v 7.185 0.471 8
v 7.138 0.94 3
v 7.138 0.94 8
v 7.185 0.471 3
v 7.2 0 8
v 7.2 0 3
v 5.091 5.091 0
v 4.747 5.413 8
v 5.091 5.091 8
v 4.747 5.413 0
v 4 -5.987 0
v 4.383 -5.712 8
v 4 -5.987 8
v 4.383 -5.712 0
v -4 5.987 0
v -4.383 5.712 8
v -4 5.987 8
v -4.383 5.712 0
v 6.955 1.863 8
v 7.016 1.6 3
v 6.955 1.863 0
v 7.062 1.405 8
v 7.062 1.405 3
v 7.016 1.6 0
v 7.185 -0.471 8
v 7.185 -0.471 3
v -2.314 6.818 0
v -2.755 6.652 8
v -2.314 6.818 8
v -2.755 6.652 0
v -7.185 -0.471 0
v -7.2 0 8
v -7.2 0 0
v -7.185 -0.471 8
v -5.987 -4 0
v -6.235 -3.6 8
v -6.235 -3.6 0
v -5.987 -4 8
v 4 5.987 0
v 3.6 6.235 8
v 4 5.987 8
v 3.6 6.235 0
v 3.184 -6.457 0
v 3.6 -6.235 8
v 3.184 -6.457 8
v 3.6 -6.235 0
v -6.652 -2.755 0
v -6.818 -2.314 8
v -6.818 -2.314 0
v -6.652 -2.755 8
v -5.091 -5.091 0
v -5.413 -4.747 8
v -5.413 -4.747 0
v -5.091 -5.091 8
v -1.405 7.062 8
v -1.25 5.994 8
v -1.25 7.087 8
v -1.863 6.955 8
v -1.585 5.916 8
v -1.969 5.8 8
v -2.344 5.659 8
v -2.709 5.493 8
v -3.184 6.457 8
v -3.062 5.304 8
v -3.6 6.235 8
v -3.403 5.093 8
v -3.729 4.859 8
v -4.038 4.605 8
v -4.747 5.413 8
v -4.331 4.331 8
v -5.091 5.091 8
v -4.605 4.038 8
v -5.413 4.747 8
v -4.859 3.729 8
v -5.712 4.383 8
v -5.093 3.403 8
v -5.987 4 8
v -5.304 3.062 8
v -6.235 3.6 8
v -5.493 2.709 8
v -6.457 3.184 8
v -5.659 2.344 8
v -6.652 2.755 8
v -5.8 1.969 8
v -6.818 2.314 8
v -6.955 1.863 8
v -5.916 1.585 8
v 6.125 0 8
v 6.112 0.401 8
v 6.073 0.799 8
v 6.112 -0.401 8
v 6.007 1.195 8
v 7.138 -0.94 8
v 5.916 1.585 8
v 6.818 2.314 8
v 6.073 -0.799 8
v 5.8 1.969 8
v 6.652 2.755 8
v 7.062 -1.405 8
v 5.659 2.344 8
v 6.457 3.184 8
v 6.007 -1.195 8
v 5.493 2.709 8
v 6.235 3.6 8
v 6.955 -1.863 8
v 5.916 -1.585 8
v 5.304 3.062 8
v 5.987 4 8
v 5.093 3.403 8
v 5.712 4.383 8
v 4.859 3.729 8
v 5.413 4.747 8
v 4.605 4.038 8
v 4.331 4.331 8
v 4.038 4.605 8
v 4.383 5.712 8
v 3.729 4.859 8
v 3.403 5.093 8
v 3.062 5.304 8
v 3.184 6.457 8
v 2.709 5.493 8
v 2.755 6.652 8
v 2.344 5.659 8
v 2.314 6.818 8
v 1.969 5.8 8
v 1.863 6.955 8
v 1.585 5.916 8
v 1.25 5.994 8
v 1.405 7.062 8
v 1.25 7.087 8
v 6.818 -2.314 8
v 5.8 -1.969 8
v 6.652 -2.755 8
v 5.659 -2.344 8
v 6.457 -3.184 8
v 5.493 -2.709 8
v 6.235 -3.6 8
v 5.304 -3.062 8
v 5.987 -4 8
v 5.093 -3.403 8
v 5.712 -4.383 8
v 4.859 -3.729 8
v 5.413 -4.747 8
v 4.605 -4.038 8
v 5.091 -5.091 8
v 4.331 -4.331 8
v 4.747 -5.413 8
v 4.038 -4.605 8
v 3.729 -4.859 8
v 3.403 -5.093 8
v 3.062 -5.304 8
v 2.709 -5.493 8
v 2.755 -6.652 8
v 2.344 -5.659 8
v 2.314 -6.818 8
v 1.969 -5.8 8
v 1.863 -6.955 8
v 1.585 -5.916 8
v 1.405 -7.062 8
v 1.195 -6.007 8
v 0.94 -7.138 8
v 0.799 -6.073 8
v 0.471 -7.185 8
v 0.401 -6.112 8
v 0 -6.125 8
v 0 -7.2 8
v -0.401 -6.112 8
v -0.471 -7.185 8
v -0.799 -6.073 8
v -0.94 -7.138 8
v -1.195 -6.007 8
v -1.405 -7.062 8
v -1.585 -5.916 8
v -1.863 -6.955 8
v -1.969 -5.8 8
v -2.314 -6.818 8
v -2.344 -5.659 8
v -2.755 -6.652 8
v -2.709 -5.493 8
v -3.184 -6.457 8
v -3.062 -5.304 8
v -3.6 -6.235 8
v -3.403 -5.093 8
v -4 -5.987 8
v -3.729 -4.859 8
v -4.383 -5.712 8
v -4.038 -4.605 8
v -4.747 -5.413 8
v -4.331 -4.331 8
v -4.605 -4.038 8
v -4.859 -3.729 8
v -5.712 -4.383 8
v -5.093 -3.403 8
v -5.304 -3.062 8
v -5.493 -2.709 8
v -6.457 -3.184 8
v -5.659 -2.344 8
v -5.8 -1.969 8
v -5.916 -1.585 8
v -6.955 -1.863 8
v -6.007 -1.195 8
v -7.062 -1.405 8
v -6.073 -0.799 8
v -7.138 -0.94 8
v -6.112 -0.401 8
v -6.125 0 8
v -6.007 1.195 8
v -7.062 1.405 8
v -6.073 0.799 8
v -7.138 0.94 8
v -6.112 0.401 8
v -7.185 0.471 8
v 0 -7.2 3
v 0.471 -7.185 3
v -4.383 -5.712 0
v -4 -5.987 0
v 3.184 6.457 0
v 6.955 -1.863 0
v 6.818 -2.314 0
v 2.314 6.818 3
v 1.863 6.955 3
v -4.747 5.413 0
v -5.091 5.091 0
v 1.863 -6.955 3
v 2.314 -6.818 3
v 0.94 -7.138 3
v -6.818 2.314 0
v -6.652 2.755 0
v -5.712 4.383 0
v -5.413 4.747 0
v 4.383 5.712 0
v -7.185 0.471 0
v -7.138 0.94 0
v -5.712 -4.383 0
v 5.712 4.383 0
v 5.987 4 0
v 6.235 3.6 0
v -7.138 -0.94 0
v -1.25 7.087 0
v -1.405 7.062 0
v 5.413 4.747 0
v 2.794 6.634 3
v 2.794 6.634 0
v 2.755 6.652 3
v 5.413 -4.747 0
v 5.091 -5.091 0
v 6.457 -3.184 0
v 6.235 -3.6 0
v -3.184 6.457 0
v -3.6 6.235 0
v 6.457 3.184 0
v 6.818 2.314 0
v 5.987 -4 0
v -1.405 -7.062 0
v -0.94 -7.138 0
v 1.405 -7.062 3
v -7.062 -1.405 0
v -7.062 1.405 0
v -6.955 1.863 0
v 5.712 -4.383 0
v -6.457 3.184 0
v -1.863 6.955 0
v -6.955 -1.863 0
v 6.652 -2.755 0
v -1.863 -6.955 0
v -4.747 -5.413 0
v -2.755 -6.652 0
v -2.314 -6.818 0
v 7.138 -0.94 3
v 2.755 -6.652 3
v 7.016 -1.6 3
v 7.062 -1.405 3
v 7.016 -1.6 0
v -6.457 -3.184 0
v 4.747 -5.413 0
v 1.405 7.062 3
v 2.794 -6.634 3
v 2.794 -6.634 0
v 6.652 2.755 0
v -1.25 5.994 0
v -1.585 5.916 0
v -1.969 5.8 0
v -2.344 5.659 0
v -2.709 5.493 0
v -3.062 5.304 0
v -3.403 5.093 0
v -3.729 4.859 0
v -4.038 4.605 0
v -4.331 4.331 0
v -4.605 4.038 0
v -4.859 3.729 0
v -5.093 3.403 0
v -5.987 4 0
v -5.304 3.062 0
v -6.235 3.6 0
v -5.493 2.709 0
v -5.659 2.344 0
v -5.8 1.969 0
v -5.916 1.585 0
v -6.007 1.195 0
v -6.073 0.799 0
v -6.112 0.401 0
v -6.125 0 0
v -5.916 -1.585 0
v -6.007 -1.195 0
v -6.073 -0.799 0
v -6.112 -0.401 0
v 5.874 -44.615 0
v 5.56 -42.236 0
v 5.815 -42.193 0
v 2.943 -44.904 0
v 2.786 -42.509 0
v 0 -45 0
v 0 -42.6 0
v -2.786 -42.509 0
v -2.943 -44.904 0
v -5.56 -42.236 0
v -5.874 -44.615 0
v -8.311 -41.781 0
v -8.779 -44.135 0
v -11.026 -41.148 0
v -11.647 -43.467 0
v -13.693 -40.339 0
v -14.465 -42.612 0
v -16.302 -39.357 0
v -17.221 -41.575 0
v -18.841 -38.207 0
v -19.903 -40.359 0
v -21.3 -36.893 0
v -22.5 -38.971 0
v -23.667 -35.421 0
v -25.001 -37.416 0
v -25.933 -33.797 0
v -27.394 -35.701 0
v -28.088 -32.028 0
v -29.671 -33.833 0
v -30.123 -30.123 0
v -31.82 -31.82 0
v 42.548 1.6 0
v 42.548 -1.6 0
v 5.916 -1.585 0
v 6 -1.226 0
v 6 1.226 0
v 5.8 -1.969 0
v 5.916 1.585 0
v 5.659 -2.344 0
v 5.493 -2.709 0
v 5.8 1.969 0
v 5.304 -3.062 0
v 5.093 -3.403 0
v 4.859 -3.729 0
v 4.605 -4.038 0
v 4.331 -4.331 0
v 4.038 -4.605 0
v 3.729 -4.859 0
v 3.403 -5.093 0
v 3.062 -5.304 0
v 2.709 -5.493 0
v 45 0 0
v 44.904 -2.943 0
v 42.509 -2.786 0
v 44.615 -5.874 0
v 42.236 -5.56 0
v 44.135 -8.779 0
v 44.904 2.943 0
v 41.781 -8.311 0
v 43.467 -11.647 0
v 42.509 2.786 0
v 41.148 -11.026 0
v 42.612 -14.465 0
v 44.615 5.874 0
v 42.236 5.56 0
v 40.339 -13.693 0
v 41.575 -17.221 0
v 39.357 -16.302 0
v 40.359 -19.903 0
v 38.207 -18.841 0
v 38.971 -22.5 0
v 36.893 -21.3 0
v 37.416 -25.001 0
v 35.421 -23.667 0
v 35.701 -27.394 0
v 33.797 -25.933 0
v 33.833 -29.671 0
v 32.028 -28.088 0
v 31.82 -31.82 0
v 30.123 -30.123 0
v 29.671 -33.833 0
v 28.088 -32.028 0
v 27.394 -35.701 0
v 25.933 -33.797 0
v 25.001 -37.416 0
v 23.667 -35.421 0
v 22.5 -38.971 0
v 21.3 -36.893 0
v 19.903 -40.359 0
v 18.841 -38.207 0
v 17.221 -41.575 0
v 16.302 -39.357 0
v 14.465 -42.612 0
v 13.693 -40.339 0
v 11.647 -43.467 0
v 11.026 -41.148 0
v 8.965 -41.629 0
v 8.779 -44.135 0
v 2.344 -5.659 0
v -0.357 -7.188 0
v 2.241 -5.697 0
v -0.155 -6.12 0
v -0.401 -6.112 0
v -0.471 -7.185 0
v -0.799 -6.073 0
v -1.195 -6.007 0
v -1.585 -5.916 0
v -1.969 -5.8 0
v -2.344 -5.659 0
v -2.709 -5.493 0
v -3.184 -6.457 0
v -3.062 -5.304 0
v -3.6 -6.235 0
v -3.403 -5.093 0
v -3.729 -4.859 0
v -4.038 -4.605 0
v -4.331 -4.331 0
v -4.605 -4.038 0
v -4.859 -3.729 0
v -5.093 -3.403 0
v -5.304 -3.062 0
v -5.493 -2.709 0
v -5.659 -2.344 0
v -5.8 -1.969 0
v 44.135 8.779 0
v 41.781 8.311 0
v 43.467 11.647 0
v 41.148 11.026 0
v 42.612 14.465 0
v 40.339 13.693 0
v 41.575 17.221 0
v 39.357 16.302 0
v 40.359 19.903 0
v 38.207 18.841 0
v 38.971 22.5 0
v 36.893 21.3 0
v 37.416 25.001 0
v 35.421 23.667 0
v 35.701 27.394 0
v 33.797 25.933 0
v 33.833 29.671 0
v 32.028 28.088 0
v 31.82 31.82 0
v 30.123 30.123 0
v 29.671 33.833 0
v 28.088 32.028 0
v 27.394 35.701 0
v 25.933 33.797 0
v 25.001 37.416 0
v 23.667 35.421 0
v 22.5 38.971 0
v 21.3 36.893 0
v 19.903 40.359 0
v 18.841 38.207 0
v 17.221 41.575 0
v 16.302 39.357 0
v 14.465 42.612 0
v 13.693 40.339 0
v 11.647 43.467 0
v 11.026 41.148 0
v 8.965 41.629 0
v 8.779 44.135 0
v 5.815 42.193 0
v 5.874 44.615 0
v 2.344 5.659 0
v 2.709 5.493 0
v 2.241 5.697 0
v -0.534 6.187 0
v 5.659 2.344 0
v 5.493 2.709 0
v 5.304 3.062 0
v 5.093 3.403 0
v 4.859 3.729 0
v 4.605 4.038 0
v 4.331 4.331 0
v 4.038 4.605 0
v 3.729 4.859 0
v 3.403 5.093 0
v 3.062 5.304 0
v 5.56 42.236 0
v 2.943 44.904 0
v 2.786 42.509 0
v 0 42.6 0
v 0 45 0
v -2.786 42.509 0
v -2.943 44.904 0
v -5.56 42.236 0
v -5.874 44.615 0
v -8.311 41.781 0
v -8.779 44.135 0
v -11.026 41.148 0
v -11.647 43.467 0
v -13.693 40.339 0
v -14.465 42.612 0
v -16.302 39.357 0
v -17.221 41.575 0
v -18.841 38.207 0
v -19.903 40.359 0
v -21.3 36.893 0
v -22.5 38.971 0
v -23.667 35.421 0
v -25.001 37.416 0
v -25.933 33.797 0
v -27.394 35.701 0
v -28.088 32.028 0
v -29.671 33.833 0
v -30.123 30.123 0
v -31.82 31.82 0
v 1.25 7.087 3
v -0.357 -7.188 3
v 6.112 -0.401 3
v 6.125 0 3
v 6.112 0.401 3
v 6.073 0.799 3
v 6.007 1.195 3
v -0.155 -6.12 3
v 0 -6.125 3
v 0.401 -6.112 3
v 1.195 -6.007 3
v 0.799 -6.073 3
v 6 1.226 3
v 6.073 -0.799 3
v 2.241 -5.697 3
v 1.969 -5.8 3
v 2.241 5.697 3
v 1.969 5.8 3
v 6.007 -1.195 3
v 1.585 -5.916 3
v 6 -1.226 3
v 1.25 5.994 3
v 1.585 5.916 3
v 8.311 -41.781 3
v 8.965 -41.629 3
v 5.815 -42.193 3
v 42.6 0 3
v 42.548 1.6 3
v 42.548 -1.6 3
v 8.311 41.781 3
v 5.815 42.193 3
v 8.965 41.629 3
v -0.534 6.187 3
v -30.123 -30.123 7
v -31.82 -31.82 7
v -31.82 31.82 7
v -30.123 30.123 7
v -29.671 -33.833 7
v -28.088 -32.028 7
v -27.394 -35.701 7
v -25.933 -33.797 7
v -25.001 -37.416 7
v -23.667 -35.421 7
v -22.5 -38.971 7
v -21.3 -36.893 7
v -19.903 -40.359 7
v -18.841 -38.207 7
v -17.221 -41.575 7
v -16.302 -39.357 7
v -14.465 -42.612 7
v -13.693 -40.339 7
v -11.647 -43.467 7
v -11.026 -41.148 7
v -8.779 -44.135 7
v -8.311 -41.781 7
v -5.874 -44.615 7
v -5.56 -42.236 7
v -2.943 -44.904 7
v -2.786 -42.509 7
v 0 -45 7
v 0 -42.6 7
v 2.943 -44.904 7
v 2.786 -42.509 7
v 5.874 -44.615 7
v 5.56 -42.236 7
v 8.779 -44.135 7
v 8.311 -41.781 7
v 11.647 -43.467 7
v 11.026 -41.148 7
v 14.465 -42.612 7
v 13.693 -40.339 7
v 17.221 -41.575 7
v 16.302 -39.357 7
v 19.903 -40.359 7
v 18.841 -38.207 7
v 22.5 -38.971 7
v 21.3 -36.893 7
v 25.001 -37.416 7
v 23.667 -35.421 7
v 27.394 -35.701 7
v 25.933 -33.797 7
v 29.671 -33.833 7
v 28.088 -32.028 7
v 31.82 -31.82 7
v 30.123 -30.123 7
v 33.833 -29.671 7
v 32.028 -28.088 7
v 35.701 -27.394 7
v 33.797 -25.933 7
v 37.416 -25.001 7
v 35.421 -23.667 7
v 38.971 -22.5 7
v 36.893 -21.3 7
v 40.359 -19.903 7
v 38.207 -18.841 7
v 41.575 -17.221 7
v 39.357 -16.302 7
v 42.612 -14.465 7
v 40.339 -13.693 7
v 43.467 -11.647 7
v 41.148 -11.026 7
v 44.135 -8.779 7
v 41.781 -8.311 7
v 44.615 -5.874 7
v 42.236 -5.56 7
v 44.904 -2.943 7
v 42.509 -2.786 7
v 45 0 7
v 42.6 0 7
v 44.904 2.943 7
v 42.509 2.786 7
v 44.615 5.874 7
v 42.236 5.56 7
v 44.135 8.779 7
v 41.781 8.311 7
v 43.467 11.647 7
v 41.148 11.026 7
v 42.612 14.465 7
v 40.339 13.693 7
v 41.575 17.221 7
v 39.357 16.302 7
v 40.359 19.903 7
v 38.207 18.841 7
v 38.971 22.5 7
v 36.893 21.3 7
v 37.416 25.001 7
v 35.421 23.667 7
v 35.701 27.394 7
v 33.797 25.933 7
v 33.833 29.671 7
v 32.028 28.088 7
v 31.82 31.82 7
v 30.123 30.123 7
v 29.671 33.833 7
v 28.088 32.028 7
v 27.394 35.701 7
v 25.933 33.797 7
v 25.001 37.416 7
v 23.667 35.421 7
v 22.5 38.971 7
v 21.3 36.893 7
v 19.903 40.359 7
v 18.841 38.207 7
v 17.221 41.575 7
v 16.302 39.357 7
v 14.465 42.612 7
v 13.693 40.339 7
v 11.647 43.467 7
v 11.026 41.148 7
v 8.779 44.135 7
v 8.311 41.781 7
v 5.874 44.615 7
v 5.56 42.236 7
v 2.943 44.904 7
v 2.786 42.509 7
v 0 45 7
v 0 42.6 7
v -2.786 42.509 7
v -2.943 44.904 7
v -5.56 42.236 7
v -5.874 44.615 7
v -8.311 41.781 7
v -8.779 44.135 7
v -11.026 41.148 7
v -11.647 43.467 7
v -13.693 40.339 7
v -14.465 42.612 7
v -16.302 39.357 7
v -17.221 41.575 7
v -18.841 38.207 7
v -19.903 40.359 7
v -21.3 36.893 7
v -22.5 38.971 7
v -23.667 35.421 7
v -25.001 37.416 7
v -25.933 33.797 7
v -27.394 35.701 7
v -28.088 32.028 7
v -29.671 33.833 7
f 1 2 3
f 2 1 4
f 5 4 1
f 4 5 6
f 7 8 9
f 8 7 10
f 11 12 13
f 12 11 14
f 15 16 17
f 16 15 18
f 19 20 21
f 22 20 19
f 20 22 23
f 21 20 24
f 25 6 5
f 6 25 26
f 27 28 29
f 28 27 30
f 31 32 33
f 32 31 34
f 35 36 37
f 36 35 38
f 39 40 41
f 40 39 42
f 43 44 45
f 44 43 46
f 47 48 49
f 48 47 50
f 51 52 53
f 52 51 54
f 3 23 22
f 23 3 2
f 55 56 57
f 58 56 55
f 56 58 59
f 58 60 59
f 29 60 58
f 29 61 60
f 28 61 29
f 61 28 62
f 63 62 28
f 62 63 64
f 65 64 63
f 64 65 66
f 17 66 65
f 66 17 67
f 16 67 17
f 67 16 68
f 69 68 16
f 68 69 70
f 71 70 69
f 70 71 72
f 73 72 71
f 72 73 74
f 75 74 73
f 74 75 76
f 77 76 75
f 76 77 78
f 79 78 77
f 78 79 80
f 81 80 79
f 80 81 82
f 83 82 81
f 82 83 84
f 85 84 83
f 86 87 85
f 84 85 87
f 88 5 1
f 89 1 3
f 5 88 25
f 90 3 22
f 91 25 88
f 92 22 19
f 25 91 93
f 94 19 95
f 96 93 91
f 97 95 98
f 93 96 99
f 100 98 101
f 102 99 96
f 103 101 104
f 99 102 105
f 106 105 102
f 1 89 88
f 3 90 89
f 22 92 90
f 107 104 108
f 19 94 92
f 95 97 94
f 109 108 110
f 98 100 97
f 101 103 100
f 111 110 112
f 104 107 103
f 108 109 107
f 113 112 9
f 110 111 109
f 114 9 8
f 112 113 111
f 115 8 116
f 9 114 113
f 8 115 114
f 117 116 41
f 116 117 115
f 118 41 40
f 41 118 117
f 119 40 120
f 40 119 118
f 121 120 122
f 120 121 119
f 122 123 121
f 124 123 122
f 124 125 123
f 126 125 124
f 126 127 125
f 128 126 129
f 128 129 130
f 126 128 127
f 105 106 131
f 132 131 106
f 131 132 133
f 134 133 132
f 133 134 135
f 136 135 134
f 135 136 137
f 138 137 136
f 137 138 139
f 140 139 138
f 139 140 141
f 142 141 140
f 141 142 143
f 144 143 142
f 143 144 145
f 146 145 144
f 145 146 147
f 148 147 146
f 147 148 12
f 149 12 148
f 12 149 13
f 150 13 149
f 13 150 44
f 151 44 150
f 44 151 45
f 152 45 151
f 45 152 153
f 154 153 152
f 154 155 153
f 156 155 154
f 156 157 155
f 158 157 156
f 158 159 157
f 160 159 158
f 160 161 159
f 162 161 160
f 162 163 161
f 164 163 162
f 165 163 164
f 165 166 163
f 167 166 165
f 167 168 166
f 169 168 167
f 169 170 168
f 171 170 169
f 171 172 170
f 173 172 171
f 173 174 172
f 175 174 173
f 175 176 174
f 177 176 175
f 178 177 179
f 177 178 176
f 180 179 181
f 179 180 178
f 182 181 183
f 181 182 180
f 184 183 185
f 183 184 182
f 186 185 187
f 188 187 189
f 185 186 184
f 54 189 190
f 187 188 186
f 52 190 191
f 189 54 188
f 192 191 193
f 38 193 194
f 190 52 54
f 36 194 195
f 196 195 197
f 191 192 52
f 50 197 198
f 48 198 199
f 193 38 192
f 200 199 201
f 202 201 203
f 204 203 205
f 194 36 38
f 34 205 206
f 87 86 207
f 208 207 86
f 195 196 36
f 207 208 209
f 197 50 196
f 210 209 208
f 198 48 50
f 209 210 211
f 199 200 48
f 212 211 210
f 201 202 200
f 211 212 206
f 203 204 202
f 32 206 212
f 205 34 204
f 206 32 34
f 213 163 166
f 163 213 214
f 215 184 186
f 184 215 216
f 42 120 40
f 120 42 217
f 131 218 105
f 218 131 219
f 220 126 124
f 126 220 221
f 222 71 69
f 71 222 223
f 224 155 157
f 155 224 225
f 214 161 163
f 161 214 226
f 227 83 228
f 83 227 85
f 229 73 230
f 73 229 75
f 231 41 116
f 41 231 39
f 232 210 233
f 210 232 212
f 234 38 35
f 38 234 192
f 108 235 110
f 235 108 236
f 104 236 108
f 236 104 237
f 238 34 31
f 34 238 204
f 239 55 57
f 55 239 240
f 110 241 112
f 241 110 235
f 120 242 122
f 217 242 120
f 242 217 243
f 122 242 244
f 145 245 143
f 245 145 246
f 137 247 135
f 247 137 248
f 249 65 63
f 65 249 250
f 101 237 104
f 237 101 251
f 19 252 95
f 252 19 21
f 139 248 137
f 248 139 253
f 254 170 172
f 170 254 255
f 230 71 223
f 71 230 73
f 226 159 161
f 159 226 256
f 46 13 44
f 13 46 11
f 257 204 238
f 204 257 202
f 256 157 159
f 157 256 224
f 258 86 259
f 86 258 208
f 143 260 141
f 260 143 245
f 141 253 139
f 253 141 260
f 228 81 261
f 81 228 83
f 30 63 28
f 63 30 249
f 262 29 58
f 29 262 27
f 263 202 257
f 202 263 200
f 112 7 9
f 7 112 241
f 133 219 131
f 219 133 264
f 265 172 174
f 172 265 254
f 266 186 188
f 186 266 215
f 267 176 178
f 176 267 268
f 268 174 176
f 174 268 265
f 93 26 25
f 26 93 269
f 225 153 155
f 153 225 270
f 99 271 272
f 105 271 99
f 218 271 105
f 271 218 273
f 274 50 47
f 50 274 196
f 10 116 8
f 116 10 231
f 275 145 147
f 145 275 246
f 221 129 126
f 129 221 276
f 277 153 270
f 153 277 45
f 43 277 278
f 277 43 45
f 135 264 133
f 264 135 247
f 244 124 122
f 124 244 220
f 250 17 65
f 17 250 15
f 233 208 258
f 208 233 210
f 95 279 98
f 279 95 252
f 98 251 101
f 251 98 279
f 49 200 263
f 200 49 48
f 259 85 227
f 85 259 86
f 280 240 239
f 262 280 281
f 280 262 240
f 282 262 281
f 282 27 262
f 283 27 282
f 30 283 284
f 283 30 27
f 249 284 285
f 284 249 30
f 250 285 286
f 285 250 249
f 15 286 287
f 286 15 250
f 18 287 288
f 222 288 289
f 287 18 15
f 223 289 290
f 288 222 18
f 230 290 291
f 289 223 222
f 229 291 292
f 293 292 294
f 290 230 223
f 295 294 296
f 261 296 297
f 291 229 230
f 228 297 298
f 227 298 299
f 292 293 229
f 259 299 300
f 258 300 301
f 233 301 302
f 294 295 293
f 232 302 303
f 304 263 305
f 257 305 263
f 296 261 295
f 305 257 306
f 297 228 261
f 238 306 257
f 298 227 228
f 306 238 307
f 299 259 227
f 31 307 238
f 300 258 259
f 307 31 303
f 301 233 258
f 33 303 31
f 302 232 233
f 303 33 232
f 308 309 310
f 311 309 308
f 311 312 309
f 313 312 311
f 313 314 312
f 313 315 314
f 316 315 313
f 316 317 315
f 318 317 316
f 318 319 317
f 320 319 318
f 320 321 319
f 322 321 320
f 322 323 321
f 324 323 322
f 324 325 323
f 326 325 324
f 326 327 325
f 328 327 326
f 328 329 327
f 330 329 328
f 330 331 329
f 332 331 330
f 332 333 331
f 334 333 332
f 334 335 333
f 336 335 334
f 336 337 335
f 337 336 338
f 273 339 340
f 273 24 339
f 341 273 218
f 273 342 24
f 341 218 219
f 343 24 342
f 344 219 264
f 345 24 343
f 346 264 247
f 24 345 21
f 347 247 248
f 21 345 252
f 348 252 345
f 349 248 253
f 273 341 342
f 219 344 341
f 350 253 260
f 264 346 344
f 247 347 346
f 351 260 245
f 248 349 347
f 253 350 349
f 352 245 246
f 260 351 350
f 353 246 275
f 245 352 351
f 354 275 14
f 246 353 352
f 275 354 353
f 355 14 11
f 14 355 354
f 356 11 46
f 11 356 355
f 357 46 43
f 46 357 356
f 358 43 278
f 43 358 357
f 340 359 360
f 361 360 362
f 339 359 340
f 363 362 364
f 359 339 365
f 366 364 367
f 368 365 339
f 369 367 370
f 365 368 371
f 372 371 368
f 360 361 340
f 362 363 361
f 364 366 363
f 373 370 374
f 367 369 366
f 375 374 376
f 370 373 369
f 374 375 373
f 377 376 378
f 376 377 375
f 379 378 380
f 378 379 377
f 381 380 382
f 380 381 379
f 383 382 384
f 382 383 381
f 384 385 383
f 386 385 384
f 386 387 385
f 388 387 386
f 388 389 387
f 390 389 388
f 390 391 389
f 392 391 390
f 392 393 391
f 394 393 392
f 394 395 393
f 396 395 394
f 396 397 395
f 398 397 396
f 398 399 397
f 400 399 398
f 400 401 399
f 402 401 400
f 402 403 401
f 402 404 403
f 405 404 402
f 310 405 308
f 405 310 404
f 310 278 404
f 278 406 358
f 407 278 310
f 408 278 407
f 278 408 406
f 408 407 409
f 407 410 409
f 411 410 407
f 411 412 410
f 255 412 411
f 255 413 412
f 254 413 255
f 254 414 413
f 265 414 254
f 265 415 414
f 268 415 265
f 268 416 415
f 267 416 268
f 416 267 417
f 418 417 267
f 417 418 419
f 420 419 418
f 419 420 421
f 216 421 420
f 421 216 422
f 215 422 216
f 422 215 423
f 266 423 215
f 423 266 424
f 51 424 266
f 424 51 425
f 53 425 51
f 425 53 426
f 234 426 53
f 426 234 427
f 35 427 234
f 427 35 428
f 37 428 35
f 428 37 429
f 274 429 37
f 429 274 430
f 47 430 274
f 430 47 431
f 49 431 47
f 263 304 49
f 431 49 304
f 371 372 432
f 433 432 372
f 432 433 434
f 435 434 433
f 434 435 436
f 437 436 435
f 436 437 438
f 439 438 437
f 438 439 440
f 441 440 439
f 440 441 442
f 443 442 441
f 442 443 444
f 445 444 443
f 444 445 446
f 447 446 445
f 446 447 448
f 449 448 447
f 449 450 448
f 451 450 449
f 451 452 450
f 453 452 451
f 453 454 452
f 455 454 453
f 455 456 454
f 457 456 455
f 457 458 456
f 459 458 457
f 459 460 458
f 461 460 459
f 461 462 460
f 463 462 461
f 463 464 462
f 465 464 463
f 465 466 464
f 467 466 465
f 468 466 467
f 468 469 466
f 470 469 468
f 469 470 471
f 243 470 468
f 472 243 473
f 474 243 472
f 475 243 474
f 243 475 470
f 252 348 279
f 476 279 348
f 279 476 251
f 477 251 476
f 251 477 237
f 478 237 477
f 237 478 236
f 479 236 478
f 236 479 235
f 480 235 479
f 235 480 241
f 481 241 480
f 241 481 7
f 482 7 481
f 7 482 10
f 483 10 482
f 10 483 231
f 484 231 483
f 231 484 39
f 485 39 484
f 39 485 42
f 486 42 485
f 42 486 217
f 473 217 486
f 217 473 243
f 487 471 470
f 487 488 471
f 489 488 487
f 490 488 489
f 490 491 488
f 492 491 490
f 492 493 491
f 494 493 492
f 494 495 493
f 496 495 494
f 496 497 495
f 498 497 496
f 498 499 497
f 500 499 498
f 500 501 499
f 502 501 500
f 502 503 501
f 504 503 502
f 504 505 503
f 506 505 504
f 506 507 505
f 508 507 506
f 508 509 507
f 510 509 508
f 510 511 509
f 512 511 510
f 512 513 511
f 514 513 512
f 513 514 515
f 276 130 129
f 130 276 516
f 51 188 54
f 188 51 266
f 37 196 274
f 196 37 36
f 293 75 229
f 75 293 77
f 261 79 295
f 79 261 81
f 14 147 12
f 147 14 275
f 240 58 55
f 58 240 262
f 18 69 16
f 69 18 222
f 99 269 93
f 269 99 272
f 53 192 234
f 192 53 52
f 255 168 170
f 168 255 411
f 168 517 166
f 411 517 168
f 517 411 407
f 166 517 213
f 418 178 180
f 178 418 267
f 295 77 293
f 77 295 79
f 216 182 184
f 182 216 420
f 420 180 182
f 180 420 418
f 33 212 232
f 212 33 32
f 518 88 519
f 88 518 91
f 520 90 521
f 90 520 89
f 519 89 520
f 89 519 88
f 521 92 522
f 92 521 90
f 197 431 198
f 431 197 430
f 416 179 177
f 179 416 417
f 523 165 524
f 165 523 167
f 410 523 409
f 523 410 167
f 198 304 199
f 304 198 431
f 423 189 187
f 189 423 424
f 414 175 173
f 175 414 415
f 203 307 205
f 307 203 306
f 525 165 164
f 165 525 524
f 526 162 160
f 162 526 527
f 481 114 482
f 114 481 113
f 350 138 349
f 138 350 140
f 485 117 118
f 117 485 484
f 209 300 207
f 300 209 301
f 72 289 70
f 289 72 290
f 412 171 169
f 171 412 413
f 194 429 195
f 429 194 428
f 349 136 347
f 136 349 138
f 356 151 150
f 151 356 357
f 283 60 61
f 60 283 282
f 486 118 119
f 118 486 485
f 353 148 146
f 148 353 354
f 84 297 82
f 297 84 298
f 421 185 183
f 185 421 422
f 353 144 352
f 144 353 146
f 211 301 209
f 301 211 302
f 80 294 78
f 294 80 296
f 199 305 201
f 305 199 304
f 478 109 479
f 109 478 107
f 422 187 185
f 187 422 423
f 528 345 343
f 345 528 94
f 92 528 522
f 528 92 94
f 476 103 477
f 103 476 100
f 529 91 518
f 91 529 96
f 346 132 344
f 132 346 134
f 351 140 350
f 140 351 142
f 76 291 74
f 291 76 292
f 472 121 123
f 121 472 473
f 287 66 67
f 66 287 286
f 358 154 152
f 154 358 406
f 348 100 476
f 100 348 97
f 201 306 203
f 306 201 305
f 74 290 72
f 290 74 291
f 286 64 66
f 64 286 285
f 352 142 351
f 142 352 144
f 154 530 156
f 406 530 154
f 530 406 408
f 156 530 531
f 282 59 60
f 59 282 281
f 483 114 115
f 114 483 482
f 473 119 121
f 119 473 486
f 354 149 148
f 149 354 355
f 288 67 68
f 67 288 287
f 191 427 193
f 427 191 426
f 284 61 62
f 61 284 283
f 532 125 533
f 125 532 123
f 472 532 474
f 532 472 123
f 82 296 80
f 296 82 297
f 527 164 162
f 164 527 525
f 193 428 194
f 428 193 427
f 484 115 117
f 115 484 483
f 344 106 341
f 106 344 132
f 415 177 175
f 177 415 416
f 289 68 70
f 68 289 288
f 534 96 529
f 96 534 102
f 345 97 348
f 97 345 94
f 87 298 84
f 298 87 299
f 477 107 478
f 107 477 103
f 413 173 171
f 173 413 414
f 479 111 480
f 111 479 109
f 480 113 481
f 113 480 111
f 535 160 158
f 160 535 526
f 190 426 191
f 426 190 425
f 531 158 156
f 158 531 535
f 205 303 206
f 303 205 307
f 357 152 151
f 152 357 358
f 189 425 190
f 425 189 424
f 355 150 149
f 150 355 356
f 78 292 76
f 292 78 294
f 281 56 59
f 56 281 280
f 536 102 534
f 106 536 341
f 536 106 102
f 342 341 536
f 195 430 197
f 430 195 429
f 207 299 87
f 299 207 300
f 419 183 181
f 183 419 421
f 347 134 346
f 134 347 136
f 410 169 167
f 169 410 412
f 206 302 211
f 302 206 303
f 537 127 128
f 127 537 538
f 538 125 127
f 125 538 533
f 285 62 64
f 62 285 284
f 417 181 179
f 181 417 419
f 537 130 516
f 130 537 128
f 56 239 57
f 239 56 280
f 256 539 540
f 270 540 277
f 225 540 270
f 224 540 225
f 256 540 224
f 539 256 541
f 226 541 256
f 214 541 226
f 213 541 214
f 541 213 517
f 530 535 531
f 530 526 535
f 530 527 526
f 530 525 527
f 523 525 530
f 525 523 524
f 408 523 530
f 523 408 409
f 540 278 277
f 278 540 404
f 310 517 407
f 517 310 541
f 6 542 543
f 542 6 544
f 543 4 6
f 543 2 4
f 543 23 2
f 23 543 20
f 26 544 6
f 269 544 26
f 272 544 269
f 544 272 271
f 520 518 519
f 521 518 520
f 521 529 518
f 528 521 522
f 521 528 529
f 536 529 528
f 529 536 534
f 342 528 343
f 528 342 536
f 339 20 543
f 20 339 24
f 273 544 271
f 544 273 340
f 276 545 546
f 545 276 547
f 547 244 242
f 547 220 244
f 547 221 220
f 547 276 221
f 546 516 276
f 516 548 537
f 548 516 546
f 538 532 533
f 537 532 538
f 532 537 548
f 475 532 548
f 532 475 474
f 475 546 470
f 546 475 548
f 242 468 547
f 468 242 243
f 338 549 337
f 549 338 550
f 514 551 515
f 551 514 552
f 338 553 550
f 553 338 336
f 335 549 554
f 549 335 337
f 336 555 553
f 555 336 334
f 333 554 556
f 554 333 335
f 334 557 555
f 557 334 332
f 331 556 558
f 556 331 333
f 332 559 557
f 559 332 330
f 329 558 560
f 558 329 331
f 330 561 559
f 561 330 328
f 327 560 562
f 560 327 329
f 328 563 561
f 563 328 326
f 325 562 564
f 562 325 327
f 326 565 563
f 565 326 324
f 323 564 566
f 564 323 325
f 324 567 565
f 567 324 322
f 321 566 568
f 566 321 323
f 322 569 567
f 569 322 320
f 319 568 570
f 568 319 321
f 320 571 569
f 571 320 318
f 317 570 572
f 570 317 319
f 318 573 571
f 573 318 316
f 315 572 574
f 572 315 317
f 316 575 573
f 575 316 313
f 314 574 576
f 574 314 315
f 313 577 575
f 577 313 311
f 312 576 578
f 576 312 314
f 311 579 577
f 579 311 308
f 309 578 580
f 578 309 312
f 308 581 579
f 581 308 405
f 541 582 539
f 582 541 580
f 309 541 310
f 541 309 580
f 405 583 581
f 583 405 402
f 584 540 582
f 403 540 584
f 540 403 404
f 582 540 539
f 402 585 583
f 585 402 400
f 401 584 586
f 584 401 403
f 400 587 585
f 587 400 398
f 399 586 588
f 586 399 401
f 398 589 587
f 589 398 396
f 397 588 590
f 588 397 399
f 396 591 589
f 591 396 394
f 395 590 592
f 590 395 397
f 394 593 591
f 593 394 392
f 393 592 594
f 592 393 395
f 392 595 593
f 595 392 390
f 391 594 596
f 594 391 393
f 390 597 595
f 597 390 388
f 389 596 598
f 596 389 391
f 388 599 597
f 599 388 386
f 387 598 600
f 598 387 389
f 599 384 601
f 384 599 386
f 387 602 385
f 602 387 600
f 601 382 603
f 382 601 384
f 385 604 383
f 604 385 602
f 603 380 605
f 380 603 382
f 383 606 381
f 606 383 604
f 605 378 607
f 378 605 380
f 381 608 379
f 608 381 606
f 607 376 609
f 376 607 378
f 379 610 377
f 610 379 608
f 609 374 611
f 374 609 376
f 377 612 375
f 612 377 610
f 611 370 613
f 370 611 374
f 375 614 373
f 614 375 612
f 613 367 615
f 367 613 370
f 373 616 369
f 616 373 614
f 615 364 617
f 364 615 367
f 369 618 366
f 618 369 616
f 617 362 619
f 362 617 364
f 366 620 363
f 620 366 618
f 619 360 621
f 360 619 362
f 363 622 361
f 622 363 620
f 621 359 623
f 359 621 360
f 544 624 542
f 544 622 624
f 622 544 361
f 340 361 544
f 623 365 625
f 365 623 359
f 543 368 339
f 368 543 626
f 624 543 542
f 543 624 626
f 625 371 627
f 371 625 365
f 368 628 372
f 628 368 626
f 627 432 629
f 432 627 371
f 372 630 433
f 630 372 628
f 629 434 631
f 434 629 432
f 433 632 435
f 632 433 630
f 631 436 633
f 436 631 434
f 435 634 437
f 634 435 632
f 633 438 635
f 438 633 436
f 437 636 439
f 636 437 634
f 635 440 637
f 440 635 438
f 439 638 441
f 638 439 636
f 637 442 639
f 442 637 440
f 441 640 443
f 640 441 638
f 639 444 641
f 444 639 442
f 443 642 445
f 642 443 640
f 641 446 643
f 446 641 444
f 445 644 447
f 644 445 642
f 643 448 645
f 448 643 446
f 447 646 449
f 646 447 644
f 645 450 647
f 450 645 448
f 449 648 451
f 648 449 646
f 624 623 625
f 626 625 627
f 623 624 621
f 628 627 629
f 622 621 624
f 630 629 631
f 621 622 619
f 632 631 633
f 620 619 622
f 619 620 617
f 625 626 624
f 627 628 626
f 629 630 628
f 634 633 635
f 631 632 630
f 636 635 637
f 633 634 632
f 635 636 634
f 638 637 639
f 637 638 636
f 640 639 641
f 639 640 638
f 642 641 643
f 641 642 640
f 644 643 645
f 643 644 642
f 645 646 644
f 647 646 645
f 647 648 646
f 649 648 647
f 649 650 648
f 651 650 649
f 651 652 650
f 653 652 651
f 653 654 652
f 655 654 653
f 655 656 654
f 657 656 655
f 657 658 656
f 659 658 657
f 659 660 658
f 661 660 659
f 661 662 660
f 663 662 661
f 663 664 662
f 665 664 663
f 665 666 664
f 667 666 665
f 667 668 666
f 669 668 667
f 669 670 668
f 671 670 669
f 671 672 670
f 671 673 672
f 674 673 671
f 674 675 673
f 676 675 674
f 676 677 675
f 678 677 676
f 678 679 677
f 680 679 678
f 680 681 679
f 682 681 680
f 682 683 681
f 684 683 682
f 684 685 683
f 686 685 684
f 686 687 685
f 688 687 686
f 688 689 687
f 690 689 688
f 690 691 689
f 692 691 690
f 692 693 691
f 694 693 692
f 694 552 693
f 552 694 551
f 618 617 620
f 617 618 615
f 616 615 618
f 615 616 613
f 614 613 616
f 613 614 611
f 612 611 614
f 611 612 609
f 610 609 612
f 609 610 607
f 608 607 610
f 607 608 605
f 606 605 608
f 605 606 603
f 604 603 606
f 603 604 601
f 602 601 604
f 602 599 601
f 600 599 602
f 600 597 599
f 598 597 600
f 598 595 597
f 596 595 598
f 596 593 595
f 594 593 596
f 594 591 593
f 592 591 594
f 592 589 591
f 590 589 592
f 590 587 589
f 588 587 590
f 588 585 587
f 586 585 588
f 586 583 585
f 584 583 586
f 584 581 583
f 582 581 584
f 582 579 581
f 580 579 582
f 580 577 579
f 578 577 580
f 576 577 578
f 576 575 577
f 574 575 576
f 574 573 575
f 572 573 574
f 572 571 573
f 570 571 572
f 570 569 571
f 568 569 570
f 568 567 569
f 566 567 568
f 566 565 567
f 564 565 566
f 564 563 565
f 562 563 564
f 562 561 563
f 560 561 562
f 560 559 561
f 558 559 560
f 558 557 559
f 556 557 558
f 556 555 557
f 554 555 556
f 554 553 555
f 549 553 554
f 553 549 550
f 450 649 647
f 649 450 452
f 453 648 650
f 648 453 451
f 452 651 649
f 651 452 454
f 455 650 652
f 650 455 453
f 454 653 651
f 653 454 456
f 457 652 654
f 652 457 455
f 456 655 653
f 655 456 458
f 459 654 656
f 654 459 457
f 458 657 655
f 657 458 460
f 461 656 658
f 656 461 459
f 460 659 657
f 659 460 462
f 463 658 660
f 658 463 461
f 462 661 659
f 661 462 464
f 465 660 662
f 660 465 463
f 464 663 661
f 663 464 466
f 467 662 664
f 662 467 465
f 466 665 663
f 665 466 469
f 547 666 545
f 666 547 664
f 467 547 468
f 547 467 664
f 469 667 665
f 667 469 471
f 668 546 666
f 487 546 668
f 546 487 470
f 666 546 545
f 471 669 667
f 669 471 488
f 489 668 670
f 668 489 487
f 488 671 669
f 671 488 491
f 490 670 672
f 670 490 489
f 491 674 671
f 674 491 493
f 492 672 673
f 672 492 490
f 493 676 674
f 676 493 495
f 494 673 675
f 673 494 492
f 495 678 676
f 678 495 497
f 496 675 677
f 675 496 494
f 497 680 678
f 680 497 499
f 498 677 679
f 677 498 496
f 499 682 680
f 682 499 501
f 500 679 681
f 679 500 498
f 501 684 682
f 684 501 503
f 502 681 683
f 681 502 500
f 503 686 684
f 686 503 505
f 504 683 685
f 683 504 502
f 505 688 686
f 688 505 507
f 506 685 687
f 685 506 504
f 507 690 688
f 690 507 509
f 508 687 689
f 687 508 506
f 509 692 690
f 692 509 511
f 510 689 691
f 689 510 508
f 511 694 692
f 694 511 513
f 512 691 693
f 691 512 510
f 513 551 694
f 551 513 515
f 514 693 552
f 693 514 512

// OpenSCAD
// Clip-on prop guards (one per corner) — Tello-style, print 4x in PETG.
// Clips onto the 8520 motor pocket sleeve of frame.scad.
// SPDX-License-Identifier: CERN-OHL-P-2.0

prop_d      = 76.2;   // 3" prop
guard_gap   = 4.5;    // radial gap prop tip -> guard
ring_w      = 2.4;
ring_h      = 7;
clip_d      = 8.5 + 0.3 + 1.6 * 2;  // matches motor pocket OD
clip_h      = 8;
spoke_w     = 3.2;

$fn = 96;
eps = 0.01;
guard_r = prop_d / 2 + guard_gap;

module guard() {
    // 270-degree ring (open toward the hub side, like the Tello guard)
    rotate_extrude(angle = 270)
        translate([guard_r, 0]) square([ring_w, ring_h]);
    rotate([0, 0, 135]) {
        // clip collar
        difference() {
            cylinder(d = clip_d + 2.4, h = clip_h);
            translate([0, 0, -eps]) cylinder(d = clip_d + 0.25, h = clip_h + 2 * eps);
            // clip slot for elasticity
            translate([-1.25, 0, -eps]) cube([2.5, clip_d, clip_h + 2 * eps]);
        }
        // three spokes from collar to ring
        for (a = [-80, 0, 80]) rotate([0, 0, a])
            translate([clip_d / 2, -spoke_w / 2, 0])
                cube([guard_r - clip_d / 2 + ring_w / 2, spoke_w, 3]);
    }
}

rotate([0, 0, -135]) guard();
echo(str("ASSERT guard_outer_d=", 2 * (guard_r + ring_w)));
